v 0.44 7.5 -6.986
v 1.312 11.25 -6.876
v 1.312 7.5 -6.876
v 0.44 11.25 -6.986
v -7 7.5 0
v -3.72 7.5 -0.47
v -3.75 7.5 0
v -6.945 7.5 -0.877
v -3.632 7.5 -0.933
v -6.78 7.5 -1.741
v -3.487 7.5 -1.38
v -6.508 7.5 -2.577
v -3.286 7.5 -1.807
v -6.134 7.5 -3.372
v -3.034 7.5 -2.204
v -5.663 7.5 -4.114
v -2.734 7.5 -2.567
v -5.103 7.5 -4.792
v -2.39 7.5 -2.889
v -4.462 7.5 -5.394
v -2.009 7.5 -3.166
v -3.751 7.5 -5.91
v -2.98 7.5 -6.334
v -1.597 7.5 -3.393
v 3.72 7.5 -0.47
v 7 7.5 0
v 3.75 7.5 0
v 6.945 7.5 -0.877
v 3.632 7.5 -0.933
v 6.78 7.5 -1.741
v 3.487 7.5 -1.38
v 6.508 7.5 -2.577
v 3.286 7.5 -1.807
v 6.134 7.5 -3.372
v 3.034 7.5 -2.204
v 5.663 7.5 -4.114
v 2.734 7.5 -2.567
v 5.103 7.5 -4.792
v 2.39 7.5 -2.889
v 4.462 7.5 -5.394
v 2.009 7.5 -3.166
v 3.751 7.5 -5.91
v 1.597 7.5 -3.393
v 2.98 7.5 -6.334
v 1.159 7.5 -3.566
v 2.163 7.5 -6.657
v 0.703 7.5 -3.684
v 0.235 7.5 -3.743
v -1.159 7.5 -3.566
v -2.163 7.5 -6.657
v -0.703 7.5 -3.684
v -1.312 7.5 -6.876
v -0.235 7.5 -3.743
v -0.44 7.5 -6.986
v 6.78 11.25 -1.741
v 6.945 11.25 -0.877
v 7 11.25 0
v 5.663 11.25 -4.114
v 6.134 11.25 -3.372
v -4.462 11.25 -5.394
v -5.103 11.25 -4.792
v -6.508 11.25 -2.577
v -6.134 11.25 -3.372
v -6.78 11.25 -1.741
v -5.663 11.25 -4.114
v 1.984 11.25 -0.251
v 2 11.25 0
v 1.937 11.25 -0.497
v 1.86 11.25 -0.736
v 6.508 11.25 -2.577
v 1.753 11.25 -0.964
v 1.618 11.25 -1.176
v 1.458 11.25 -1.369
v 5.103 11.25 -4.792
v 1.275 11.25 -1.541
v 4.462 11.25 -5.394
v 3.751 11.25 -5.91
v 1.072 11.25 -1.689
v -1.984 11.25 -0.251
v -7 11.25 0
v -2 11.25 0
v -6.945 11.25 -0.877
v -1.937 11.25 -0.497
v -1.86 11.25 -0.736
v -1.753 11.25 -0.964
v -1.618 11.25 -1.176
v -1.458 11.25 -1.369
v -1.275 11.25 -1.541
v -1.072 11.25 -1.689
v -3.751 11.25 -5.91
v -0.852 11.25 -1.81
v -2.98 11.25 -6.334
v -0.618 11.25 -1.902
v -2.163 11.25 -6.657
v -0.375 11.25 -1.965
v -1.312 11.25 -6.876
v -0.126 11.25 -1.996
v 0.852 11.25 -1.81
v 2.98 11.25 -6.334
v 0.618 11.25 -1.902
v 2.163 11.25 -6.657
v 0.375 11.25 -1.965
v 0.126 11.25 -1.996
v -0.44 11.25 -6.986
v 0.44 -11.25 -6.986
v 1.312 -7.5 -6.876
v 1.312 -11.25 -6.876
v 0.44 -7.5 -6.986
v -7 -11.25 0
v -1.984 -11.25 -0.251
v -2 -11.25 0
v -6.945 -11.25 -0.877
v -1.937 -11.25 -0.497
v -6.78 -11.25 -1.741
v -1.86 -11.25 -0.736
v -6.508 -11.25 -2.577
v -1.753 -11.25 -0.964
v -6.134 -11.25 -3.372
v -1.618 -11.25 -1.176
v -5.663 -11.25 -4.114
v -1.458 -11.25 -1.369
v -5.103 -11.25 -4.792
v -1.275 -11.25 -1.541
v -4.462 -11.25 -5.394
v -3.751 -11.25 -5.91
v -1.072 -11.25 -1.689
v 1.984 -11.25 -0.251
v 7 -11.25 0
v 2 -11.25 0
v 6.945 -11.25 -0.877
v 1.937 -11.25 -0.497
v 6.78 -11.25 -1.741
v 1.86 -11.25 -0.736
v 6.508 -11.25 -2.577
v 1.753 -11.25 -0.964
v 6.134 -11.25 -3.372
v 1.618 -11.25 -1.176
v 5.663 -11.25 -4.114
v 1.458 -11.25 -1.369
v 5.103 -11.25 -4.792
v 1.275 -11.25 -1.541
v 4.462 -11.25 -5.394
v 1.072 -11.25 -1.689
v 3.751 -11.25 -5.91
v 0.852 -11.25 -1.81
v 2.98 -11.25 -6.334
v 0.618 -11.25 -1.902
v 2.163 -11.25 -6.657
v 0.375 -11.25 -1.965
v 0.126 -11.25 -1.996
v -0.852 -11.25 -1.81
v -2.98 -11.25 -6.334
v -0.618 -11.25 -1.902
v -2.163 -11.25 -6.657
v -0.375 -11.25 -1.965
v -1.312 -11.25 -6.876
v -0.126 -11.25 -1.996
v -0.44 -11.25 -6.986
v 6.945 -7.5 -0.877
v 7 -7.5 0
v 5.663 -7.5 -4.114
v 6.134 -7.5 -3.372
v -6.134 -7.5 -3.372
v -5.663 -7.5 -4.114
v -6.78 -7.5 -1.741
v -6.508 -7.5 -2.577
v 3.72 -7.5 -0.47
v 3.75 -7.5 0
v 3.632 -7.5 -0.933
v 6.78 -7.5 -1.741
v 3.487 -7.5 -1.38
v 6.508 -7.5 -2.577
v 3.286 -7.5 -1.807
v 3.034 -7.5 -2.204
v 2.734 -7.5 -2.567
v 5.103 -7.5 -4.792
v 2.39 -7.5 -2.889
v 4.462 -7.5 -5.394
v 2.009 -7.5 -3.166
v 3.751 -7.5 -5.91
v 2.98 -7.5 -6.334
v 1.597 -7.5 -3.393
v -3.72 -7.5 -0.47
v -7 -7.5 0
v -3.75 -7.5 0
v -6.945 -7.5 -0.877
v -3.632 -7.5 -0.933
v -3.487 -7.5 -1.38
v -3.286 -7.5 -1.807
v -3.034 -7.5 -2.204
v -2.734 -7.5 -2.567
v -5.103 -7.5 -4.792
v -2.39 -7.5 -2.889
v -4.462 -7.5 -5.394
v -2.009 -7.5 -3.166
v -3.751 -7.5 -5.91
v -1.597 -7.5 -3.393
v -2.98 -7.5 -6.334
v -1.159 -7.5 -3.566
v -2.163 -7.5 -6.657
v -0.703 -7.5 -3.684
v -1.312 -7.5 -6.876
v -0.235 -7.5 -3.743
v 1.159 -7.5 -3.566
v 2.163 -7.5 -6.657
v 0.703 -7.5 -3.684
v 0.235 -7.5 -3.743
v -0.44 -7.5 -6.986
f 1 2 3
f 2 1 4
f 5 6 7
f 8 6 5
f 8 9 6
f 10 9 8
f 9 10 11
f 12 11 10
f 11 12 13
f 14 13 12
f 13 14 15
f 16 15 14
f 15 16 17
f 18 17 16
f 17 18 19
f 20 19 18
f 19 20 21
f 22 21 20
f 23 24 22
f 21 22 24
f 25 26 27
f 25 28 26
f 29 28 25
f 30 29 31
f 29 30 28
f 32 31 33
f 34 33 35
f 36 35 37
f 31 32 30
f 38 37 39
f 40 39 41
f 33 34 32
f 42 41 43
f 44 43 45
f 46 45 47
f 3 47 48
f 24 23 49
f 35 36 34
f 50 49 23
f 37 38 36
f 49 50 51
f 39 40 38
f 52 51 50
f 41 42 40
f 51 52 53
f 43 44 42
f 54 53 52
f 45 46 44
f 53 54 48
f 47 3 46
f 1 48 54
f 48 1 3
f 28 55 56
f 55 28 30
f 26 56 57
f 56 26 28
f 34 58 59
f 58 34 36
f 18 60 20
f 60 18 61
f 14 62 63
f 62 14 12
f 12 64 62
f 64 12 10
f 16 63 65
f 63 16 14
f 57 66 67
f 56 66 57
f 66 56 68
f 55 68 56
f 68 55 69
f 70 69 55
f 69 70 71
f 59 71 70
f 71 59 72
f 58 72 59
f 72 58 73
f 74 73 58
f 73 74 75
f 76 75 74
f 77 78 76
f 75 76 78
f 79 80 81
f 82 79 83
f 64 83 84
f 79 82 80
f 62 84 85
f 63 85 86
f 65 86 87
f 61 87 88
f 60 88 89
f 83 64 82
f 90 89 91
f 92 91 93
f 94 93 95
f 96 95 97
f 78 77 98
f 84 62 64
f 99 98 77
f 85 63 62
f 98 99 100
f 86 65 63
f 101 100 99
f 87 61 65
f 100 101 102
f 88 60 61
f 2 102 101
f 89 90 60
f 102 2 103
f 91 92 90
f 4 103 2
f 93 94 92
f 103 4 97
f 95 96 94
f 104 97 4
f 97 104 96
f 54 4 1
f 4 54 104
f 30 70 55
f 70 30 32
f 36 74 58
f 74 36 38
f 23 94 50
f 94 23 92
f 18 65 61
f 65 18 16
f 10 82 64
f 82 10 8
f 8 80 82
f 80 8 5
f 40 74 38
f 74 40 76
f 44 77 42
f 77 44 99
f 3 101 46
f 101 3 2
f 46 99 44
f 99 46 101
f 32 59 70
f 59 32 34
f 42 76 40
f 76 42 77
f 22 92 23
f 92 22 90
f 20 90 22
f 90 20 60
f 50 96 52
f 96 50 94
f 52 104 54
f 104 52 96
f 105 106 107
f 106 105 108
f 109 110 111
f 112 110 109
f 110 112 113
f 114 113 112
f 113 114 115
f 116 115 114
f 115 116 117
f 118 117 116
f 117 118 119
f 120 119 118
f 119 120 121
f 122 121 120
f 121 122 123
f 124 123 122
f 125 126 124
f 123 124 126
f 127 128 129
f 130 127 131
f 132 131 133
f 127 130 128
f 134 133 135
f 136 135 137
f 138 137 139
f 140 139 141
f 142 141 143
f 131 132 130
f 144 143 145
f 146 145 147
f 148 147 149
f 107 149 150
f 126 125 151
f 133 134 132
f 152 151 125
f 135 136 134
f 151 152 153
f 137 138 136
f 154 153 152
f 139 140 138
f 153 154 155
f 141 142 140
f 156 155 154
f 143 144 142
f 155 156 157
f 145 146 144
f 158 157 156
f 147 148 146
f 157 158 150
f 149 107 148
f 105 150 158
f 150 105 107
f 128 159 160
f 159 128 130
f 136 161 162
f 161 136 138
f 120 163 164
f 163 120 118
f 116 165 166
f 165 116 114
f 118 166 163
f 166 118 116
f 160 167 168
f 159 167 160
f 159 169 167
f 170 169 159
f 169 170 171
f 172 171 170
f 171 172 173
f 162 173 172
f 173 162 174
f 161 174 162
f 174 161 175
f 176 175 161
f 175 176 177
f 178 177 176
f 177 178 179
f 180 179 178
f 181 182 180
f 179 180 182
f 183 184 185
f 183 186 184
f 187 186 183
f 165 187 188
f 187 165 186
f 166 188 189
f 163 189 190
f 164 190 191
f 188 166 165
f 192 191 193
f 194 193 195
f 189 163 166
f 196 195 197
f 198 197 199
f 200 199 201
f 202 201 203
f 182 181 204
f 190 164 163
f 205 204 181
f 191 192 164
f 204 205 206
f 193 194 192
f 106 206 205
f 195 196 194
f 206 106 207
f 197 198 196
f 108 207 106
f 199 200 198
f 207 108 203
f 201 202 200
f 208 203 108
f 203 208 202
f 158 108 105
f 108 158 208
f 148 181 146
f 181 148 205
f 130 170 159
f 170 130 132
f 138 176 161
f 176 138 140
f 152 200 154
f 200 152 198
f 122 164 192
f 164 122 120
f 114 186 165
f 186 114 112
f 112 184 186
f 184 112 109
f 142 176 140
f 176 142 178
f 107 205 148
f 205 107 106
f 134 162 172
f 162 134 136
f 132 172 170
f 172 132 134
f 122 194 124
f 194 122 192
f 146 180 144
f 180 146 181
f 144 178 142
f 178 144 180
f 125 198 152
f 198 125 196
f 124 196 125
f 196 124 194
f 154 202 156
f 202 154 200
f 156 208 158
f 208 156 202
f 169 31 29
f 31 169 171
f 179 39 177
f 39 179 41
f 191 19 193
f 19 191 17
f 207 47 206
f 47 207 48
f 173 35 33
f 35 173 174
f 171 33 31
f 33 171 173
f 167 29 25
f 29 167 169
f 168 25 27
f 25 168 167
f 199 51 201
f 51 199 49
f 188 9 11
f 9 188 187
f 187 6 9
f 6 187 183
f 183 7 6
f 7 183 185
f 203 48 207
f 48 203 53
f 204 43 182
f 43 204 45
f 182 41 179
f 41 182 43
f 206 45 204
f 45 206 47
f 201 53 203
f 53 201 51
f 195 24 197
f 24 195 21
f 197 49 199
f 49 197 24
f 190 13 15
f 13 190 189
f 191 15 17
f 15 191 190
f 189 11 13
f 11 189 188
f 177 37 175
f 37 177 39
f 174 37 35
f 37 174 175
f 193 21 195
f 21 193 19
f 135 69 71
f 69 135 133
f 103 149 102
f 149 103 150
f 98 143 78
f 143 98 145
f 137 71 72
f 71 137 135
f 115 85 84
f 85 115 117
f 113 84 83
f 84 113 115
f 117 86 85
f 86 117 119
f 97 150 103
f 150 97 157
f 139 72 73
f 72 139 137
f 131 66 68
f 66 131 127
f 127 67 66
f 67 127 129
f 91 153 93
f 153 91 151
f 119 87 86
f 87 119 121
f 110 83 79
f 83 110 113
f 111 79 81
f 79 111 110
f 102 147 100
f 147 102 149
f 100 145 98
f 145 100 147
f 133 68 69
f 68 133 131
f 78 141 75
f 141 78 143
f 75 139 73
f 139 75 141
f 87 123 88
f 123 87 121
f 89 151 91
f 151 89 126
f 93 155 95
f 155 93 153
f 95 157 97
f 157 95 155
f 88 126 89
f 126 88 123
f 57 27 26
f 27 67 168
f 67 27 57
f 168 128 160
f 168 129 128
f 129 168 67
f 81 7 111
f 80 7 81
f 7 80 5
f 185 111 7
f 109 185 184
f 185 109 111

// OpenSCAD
$fn = 50;


difference() {
	union() {
		translate(v = [0, 11.2500000000, 0.0000000000]) {
			rotate(a = [90, 0, 0]) {
				cylinder(h = 3.7500000000, r = 7.0000000000);
			}
		}
		translate(v = [0, -7.5000000000, 0.0000000000]) {
			rotate(a = [90, 0, 0]) {
				cylinder(h = 3.7500000000, r = 7.0000000000);
			}
		}
		translate(v = [0, 11.2500000000, 0.0000000000]) {
			rotate(a = [90, 0, 0]) {
				cylinder(h = 22.5000000000, r = 3.7500000000);
			}
		}
	}
	union() {
		translate(v = [0, 11.2500000000, 0.0000000000]) {
			rotate(a = [90, 0, 0]) {
				cylinder(h = 22.5000000000, r = 2.0000000000);
			}
		}
		translate(v = [-250.0000000000, -250.0000000000, 0]) {
			cube(size = [500, 500, 500]);
		}
		translate(v = [-250.0000000000, -250.0000000000, 0]) {
			cube(size = [500, 500, 500]);
		}
		translate(v = [-250.0000000000, -250.0000000000, 0]) {
			cube(size = [500, 500, 500]);
		}
	}
}
